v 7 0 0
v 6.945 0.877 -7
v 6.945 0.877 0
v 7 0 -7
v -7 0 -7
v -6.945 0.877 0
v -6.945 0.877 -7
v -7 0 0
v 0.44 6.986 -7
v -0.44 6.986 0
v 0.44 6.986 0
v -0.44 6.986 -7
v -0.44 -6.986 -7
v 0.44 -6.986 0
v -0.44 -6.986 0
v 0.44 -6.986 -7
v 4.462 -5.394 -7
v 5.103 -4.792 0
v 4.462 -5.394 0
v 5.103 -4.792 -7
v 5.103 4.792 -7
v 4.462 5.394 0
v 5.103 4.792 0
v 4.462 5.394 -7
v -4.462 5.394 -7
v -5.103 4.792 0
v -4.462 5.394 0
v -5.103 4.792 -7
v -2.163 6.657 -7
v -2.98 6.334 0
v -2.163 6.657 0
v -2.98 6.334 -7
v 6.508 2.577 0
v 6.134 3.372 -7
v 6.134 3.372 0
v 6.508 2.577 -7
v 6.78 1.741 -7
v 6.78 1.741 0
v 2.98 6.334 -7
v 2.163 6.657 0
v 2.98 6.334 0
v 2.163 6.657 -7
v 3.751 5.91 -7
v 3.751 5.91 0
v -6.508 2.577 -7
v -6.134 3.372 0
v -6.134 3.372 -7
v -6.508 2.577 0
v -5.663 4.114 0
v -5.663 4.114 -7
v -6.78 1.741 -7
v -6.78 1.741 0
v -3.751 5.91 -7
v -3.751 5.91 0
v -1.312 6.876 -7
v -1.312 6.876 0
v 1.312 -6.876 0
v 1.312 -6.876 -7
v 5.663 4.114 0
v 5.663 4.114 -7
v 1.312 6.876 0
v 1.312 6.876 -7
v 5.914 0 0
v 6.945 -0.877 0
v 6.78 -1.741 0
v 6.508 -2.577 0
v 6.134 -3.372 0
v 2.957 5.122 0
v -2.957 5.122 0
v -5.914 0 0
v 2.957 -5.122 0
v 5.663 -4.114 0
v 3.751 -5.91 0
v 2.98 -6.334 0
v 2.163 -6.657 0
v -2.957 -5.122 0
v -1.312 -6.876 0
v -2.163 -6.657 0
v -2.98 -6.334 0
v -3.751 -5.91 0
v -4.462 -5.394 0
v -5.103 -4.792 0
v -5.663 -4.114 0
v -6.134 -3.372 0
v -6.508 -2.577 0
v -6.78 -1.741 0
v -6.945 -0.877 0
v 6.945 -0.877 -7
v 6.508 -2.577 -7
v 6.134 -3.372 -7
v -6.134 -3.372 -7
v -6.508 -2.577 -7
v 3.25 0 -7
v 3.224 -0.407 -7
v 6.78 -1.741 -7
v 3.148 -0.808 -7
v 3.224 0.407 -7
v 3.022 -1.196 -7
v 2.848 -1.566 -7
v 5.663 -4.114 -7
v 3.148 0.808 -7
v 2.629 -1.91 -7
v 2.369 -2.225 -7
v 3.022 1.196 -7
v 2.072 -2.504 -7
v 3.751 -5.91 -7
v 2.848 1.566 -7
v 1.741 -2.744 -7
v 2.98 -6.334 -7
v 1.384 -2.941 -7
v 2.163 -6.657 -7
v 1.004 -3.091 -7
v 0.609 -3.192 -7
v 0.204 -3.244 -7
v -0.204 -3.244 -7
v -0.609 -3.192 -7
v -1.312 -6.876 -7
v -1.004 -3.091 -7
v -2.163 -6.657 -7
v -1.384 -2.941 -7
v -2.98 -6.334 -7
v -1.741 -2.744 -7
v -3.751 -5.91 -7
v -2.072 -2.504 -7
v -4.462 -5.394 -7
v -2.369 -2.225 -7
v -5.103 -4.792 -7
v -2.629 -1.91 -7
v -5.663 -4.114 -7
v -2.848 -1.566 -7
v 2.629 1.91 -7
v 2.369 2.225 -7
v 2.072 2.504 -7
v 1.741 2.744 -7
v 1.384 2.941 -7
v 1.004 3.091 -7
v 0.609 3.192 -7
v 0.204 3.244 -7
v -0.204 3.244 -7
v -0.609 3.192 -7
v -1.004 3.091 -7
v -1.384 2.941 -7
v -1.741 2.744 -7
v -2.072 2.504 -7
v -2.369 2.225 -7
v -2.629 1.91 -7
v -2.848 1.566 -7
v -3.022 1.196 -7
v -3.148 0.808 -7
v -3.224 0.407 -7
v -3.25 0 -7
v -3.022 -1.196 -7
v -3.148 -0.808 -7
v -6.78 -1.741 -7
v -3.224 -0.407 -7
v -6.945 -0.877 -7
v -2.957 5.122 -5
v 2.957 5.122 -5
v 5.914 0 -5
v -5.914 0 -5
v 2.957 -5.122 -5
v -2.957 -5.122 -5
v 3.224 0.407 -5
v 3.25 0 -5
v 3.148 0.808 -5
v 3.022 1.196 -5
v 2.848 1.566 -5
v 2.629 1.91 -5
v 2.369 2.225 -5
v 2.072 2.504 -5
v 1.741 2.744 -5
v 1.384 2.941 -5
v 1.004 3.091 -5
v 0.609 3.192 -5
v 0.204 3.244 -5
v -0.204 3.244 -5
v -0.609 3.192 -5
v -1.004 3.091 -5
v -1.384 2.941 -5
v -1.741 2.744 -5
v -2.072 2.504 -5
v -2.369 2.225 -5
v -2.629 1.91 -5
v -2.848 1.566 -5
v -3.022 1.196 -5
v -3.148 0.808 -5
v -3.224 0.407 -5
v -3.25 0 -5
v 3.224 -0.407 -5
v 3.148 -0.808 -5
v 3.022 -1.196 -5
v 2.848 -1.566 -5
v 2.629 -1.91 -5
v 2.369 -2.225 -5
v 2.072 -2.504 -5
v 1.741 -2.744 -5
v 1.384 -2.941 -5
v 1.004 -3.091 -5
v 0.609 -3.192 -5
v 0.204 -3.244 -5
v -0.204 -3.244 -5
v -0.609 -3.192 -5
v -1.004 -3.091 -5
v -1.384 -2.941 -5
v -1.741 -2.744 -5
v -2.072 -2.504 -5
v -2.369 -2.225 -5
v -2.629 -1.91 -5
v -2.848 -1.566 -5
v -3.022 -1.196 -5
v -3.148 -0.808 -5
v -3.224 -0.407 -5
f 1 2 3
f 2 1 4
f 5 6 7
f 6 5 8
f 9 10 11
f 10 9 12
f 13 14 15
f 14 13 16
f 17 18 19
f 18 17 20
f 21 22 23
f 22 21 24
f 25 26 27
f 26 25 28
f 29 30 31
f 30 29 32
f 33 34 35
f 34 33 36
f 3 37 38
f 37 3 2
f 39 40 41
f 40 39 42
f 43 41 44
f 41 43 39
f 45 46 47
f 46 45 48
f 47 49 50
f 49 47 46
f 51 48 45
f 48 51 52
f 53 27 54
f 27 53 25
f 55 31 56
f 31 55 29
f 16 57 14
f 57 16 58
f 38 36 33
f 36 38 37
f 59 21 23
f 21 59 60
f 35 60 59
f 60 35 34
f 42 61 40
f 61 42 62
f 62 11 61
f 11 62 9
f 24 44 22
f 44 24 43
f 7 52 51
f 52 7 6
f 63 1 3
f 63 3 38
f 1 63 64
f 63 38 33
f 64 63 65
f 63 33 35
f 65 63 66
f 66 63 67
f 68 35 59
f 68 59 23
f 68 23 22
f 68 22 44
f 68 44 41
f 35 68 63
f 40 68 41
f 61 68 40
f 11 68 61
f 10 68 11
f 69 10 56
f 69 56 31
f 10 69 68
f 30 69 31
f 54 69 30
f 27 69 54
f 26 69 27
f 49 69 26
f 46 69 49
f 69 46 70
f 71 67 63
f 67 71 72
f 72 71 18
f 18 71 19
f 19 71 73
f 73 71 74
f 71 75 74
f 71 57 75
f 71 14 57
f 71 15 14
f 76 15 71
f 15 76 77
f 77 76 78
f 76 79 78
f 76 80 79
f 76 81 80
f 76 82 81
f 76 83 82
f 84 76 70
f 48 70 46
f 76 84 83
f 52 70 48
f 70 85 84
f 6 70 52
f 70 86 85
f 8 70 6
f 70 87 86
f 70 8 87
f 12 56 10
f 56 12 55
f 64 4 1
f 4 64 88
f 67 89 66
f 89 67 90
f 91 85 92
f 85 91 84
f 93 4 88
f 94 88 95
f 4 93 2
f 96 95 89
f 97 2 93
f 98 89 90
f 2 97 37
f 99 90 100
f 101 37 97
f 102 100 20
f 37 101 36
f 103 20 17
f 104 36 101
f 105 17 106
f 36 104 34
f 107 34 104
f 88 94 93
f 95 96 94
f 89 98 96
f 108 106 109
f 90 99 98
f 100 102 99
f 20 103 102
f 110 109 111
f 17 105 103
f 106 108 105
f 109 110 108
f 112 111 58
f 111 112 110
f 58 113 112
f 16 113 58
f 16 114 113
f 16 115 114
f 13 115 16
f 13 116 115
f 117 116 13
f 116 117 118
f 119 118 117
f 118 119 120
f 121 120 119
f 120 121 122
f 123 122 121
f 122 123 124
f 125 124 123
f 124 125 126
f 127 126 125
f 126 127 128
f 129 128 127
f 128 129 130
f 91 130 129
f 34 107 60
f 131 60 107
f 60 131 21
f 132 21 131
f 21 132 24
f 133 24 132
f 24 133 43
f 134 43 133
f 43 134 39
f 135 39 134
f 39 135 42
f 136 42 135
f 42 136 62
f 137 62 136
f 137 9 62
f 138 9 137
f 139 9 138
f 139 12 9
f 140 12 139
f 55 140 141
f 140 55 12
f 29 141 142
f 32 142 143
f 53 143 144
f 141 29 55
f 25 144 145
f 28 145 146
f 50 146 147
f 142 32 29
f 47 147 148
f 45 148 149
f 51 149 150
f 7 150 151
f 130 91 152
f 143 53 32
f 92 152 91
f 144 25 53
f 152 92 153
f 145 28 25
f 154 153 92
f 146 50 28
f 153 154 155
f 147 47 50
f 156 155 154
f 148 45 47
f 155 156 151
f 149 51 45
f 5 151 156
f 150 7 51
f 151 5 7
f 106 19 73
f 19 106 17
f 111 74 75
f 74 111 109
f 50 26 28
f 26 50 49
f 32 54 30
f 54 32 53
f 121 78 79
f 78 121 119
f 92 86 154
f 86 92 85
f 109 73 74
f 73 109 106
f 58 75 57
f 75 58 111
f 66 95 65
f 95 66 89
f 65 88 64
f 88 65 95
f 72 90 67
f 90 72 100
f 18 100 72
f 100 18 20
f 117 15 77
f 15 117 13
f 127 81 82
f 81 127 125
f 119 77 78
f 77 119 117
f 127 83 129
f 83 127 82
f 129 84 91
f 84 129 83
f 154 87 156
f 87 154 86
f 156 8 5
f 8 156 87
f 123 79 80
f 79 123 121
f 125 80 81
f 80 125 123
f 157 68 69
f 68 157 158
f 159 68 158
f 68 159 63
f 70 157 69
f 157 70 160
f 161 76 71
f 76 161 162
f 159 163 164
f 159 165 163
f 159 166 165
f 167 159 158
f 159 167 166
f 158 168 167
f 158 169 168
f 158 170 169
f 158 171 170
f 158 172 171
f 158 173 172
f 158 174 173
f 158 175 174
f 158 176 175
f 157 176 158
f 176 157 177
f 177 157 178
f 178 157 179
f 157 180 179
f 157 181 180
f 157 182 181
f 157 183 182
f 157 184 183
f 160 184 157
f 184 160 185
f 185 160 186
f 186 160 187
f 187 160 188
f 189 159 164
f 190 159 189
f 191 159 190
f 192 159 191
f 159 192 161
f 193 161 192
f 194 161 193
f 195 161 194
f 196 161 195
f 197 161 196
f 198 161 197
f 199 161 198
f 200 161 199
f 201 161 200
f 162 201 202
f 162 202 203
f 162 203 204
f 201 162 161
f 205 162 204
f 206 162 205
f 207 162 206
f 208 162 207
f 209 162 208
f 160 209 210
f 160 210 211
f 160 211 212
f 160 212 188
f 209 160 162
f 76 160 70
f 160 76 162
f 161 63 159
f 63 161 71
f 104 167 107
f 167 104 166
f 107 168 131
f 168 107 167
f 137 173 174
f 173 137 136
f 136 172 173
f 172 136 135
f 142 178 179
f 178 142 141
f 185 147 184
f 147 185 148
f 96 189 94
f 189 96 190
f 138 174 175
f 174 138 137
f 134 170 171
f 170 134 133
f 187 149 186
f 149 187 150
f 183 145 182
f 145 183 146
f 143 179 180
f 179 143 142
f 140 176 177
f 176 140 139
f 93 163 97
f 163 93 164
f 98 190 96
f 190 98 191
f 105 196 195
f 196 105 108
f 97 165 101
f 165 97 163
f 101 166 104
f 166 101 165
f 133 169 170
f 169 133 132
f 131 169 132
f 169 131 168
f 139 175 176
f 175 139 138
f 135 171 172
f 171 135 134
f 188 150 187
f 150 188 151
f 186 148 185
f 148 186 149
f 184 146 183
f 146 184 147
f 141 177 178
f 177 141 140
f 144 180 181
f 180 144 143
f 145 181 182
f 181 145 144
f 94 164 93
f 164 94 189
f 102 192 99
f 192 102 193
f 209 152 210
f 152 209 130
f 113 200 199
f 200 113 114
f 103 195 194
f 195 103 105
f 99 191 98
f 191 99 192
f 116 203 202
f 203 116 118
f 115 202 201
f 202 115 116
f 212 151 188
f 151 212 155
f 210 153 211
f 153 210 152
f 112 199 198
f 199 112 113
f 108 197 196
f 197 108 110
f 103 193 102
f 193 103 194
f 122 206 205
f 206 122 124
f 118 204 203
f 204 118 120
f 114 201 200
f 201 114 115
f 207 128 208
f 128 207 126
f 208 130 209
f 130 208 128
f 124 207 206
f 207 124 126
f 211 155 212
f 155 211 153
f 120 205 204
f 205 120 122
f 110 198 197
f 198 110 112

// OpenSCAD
$fn = 50;


difference() {
	union() {
		translate(v = [0, 0, -7.0000000000]) {
			cylinder(h = 7.0000000000, r = 7.0000000000);
		}
		#translate(v = [0, 0, -8.5000000000]) {
			cylinder(h = 8.5000000000, r = 2.8750000000);
		}
	}
	union() {
		translate(v = [0, 0, 0]) {
			rotate(a = [0, 0, 0]) {
				difference() {
					union() {
						translate(v = [0, 0, -5]) {
							linear_extrude(height = 5) {
								polygon(points = [[5.9142500000, 0.0000000000], [2.9571250000, 5.1218907443], [-2.9571250000, 5.1218907443], [-5.9142500000, 0.0000000000], [-2.9571250000, -5.1218907443], [2.9571250000, -5.1218907443]]);
							}
						}
					}
					union();
				}
			}
		}
		#translate(v = [0, 0, -100.0000000000]) {
			cylinder(h = 200, r = 3.2500000000);
		}
	}
}
